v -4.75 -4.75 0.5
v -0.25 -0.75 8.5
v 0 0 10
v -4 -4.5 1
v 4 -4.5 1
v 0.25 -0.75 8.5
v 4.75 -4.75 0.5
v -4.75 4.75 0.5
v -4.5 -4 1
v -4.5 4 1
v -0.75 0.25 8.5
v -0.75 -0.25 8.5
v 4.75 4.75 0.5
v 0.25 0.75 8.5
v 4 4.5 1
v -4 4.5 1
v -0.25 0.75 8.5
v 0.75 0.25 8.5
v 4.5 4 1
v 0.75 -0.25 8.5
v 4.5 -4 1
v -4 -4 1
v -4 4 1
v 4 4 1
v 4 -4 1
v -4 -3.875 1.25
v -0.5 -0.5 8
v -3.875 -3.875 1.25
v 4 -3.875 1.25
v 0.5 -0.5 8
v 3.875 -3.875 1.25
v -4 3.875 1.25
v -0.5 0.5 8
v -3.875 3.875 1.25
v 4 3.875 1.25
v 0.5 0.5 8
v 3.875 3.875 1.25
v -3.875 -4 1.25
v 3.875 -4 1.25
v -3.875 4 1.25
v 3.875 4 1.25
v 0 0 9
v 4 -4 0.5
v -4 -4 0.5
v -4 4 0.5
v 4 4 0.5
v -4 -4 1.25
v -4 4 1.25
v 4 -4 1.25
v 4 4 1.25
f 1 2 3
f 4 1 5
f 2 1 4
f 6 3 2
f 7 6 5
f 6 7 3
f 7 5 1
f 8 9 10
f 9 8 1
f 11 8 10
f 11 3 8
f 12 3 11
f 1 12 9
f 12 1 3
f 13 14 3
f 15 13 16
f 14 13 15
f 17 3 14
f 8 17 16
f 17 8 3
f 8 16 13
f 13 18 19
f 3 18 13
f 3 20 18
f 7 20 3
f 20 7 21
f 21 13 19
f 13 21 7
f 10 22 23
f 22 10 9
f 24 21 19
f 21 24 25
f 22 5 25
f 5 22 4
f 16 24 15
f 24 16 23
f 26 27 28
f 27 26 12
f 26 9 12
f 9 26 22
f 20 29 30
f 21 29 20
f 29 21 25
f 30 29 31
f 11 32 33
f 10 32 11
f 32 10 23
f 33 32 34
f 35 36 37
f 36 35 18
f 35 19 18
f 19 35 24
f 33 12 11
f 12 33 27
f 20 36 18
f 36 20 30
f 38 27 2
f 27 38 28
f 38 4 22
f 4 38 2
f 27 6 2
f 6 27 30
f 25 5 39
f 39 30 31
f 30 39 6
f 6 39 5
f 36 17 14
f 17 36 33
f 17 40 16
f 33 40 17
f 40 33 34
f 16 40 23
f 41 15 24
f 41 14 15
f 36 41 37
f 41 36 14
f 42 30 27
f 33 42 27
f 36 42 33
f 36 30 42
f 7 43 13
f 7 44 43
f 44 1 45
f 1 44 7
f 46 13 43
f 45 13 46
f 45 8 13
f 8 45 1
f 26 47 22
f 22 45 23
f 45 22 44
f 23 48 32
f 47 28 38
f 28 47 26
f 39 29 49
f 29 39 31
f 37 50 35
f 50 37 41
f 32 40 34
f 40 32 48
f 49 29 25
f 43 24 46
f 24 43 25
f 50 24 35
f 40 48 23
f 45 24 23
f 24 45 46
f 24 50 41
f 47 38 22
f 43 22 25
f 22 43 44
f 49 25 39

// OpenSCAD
module pyramid(size=10) {
   linear_extrude(size,scale=0) square(size,center=true);
}

module hollow() {
   difference() {
      pyramid(10);
      translate([-1,0,1]) pyramid(8);
      translate([1,0,1]) pyramid(8);
      translate([0,-1,1]) pyramid(8);
      translate([0,1,1]) pyramid(8);
      translate([0,0,-1]) pyramid(8);
      translate([0,0,1]) pyramid(8);
      translate([0,0,-.5]) cube([12,12,2],center=true);
      translate([0,0,0]) cube([8,8,2.5],center=true);
   }
}

hollow();
//translate([0,0,7]) rotate([0,180,0]) hollow();
